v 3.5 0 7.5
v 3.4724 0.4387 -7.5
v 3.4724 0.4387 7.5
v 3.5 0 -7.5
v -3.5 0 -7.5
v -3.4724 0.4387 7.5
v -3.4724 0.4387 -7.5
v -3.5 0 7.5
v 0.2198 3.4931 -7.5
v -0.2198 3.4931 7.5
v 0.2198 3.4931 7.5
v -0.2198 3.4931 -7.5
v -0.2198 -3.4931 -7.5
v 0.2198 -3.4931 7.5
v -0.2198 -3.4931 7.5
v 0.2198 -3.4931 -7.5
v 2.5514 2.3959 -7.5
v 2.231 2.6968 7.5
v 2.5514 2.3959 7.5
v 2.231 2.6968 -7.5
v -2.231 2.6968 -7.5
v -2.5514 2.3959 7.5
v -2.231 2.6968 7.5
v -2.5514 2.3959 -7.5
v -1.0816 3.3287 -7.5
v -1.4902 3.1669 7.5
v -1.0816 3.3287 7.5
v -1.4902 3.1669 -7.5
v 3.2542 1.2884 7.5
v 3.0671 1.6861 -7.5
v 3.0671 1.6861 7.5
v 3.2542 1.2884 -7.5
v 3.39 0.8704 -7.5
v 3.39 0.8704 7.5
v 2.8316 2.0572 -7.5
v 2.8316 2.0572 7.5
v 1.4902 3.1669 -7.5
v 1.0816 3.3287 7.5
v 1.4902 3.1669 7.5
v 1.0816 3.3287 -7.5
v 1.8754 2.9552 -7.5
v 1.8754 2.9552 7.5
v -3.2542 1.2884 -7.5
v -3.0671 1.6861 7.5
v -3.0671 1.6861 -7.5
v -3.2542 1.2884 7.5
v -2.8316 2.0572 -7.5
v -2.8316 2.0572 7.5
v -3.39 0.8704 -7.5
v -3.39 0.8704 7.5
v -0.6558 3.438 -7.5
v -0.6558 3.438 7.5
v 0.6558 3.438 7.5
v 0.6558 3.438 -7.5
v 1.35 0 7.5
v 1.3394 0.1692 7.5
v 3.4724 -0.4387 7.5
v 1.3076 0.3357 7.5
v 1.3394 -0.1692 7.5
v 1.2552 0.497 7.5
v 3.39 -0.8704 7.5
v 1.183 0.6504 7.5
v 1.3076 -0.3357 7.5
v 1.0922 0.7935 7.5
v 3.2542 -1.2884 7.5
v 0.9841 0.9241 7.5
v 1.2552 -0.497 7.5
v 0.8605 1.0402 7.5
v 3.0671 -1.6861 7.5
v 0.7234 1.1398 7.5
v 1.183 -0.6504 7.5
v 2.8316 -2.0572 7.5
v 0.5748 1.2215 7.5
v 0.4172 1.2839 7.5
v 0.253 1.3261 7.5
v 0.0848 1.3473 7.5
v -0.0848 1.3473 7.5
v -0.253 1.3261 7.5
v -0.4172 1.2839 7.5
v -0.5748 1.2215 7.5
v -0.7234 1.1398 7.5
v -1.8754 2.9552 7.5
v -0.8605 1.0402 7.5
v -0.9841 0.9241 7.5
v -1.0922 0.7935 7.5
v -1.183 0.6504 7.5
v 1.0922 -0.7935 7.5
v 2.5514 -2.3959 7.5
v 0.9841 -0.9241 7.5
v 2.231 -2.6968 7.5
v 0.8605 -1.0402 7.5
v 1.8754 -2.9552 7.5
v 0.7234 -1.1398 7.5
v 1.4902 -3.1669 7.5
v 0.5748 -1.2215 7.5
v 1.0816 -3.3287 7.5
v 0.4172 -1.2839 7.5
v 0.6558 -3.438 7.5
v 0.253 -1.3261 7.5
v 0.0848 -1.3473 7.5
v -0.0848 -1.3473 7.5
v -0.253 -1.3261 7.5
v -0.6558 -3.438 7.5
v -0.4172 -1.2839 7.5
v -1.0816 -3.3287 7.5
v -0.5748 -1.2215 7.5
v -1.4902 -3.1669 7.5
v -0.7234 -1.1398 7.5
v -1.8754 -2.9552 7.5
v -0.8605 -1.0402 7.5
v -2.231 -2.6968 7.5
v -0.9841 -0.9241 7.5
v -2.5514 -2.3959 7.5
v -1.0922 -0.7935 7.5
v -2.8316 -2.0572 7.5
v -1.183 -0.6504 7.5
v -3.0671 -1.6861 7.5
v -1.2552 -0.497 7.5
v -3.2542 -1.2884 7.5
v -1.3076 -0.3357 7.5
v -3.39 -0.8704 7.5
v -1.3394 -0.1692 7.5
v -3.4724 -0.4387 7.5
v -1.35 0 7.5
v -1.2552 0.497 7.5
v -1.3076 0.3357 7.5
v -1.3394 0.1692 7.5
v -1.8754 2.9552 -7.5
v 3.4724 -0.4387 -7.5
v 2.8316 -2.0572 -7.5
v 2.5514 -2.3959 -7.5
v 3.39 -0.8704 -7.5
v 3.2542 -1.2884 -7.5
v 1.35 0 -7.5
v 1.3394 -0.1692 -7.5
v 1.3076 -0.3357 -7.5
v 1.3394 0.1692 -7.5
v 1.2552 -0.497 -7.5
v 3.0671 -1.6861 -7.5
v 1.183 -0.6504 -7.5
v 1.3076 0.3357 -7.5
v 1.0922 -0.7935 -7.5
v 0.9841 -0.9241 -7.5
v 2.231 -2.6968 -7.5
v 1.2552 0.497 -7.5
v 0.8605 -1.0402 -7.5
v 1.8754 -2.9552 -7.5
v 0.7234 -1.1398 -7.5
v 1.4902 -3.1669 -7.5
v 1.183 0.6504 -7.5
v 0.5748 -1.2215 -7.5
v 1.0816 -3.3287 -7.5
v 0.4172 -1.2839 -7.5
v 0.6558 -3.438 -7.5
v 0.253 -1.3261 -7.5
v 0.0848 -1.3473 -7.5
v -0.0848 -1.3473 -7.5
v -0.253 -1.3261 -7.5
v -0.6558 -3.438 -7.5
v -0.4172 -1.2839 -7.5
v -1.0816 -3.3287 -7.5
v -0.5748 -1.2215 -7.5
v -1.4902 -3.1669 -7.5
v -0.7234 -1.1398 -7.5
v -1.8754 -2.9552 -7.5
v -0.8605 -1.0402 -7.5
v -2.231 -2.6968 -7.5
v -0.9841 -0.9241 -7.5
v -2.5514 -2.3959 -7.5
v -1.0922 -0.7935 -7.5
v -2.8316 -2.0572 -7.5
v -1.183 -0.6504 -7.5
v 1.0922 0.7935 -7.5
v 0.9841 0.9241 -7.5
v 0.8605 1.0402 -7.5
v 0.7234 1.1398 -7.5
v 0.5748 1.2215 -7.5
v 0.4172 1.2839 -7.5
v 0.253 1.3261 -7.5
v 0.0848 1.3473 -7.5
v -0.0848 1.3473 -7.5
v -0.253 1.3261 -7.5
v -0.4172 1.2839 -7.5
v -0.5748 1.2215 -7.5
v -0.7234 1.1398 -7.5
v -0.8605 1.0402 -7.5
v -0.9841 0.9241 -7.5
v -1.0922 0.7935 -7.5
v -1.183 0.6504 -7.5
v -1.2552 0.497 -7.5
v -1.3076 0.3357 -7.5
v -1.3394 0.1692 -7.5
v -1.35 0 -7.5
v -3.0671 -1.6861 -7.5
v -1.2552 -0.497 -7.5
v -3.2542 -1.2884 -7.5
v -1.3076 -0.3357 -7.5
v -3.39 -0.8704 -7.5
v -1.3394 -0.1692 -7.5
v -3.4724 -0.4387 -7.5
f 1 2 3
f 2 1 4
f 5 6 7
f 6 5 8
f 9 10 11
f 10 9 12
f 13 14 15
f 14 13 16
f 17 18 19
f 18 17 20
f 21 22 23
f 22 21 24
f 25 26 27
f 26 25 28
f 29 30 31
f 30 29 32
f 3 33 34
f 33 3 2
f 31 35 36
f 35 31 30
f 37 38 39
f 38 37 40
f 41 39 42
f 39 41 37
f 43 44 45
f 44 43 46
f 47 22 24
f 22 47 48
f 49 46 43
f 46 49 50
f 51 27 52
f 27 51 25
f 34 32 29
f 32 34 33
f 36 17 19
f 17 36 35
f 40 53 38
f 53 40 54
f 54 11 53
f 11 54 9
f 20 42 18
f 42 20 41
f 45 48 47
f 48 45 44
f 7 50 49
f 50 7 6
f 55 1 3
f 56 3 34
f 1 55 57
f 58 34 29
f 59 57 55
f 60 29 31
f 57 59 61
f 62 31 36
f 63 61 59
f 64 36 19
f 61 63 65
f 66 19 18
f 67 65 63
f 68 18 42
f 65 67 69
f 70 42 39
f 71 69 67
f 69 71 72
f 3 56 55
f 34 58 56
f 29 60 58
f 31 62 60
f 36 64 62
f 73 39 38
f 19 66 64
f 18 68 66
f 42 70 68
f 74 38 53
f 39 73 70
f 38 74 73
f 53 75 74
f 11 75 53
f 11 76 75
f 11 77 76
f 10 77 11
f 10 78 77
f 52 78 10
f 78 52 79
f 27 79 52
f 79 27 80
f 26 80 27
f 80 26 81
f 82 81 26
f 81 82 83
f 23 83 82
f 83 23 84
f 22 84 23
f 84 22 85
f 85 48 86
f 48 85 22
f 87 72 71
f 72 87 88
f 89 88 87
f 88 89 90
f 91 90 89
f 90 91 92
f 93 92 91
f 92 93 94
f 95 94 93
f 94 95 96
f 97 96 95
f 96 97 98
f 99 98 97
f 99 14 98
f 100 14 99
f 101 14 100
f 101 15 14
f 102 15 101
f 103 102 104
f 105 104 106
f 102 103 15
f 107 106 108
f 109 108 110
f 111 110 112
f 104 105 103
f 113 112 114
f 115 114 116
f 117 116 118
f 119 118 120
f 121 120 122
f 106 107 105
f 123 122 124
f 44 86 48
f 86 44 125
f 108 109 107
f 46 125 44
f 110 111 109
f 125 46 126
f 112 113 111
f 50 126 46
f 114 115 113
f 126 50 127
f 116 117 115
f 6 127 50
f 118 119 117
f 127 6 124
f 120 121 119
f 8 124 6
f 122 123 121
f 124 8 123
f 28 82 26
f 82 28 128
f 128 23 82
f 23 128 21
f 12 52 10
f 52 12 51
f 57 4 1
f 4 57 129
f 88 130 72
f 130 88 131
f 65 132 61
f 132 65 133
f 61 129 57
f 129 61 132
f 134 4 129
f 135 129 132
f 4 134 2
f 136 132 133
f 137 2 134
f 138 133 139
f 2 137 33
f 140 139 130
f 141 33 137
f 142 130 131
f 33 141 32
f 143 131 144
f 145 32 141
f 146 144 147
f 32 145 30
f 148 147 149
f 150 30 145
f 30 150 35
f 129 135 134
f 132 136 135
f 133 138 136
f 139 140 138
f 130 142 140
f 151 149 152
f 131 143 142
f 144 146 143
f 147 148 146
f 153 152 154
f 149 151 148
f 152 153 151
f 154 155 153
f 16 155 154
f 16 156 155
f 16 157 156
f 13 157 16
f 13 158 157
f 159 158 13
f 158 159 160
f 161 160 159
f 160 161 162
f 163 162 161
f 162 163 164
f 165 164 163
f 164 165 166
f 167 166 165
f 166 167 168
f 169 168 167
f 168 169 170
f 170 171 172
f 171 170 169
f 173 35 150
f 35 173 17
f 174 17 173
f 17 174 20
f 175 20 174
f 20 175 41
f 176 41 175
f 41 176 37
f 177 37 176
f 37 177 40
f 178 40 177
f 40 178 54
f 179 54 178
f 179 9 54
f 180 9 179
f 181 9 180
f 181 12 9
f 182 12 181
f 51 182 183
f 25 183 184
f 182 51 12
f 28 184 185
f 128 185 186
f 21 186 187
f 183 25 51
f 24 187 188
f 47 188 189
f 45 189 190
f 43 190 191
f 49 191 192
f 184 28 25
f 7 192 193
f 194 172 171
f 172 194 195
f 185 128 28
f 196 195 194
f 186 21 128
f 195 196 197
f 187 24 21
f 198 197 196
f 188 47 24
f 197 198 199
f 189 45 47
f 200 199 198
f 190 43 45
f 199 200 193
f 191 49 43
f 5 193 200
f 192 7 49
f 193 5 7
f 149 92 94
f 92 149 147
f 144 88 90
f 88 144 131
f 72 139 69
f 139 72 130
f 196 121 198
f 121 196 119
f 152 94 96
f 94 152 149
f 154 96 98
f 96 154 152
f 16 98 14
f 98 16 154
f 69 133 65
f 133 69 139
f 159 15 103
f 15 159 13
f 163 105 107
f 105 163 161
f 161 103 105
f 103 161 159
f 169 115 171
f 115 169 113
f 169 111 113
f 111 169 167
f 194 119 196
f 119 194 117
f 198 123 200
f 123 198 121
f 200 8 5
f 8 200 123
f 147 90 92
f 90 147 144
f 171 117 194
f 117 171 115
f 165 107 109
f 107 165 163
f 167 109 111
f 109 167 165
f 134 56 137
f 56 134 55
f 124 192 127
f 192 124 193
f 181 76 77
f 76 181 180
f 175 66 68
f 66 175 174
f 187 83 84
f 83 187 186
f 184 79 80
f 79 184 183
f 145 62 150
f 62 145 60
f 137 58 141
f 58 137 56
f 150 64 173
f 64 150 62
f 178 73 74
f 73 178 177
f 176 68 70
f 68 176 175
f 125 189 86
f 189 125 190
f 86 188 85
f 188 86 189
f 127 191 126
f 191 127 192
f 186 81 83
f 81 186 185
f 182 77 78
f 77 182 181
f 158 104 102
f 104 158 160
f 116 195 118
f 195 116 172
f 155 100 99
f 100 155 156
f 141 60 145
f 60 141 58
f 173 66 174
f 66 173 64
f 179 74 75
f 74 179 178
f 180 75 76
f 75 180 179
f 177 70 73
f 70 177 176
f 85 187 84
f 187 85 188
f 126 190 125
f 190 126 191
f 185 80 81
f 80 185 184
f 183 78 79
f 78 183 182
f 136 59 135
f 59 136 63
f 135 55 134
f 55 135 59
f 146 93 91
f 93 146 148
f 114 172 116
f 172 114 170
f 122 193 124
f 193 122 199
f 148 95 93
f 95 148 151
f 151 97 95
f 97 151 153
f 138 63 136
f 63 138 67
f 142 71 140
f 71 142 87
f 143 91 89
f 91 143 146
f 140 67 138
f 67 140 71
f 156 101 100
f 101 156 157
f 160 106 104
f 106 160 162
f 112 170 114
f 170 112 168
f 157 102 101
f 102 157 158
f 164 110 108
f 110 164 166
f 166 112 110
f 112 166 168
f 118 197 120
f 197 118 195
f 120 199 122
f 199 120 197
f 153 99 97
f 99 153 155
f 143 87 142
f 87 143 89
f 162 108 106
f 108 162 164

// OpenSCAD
$fn = 50;


difference() {
	union() {
		translate(v = [0, 0, -7.5000000000]) {
			cylinder(h = 15, r = 3.5000000000);
		}
	}
	union() {
		translate(v = [0, 0, -100.0000000000]) {
			cylinder(h = 200, r = 1.3500000000);
		}
	}
}
